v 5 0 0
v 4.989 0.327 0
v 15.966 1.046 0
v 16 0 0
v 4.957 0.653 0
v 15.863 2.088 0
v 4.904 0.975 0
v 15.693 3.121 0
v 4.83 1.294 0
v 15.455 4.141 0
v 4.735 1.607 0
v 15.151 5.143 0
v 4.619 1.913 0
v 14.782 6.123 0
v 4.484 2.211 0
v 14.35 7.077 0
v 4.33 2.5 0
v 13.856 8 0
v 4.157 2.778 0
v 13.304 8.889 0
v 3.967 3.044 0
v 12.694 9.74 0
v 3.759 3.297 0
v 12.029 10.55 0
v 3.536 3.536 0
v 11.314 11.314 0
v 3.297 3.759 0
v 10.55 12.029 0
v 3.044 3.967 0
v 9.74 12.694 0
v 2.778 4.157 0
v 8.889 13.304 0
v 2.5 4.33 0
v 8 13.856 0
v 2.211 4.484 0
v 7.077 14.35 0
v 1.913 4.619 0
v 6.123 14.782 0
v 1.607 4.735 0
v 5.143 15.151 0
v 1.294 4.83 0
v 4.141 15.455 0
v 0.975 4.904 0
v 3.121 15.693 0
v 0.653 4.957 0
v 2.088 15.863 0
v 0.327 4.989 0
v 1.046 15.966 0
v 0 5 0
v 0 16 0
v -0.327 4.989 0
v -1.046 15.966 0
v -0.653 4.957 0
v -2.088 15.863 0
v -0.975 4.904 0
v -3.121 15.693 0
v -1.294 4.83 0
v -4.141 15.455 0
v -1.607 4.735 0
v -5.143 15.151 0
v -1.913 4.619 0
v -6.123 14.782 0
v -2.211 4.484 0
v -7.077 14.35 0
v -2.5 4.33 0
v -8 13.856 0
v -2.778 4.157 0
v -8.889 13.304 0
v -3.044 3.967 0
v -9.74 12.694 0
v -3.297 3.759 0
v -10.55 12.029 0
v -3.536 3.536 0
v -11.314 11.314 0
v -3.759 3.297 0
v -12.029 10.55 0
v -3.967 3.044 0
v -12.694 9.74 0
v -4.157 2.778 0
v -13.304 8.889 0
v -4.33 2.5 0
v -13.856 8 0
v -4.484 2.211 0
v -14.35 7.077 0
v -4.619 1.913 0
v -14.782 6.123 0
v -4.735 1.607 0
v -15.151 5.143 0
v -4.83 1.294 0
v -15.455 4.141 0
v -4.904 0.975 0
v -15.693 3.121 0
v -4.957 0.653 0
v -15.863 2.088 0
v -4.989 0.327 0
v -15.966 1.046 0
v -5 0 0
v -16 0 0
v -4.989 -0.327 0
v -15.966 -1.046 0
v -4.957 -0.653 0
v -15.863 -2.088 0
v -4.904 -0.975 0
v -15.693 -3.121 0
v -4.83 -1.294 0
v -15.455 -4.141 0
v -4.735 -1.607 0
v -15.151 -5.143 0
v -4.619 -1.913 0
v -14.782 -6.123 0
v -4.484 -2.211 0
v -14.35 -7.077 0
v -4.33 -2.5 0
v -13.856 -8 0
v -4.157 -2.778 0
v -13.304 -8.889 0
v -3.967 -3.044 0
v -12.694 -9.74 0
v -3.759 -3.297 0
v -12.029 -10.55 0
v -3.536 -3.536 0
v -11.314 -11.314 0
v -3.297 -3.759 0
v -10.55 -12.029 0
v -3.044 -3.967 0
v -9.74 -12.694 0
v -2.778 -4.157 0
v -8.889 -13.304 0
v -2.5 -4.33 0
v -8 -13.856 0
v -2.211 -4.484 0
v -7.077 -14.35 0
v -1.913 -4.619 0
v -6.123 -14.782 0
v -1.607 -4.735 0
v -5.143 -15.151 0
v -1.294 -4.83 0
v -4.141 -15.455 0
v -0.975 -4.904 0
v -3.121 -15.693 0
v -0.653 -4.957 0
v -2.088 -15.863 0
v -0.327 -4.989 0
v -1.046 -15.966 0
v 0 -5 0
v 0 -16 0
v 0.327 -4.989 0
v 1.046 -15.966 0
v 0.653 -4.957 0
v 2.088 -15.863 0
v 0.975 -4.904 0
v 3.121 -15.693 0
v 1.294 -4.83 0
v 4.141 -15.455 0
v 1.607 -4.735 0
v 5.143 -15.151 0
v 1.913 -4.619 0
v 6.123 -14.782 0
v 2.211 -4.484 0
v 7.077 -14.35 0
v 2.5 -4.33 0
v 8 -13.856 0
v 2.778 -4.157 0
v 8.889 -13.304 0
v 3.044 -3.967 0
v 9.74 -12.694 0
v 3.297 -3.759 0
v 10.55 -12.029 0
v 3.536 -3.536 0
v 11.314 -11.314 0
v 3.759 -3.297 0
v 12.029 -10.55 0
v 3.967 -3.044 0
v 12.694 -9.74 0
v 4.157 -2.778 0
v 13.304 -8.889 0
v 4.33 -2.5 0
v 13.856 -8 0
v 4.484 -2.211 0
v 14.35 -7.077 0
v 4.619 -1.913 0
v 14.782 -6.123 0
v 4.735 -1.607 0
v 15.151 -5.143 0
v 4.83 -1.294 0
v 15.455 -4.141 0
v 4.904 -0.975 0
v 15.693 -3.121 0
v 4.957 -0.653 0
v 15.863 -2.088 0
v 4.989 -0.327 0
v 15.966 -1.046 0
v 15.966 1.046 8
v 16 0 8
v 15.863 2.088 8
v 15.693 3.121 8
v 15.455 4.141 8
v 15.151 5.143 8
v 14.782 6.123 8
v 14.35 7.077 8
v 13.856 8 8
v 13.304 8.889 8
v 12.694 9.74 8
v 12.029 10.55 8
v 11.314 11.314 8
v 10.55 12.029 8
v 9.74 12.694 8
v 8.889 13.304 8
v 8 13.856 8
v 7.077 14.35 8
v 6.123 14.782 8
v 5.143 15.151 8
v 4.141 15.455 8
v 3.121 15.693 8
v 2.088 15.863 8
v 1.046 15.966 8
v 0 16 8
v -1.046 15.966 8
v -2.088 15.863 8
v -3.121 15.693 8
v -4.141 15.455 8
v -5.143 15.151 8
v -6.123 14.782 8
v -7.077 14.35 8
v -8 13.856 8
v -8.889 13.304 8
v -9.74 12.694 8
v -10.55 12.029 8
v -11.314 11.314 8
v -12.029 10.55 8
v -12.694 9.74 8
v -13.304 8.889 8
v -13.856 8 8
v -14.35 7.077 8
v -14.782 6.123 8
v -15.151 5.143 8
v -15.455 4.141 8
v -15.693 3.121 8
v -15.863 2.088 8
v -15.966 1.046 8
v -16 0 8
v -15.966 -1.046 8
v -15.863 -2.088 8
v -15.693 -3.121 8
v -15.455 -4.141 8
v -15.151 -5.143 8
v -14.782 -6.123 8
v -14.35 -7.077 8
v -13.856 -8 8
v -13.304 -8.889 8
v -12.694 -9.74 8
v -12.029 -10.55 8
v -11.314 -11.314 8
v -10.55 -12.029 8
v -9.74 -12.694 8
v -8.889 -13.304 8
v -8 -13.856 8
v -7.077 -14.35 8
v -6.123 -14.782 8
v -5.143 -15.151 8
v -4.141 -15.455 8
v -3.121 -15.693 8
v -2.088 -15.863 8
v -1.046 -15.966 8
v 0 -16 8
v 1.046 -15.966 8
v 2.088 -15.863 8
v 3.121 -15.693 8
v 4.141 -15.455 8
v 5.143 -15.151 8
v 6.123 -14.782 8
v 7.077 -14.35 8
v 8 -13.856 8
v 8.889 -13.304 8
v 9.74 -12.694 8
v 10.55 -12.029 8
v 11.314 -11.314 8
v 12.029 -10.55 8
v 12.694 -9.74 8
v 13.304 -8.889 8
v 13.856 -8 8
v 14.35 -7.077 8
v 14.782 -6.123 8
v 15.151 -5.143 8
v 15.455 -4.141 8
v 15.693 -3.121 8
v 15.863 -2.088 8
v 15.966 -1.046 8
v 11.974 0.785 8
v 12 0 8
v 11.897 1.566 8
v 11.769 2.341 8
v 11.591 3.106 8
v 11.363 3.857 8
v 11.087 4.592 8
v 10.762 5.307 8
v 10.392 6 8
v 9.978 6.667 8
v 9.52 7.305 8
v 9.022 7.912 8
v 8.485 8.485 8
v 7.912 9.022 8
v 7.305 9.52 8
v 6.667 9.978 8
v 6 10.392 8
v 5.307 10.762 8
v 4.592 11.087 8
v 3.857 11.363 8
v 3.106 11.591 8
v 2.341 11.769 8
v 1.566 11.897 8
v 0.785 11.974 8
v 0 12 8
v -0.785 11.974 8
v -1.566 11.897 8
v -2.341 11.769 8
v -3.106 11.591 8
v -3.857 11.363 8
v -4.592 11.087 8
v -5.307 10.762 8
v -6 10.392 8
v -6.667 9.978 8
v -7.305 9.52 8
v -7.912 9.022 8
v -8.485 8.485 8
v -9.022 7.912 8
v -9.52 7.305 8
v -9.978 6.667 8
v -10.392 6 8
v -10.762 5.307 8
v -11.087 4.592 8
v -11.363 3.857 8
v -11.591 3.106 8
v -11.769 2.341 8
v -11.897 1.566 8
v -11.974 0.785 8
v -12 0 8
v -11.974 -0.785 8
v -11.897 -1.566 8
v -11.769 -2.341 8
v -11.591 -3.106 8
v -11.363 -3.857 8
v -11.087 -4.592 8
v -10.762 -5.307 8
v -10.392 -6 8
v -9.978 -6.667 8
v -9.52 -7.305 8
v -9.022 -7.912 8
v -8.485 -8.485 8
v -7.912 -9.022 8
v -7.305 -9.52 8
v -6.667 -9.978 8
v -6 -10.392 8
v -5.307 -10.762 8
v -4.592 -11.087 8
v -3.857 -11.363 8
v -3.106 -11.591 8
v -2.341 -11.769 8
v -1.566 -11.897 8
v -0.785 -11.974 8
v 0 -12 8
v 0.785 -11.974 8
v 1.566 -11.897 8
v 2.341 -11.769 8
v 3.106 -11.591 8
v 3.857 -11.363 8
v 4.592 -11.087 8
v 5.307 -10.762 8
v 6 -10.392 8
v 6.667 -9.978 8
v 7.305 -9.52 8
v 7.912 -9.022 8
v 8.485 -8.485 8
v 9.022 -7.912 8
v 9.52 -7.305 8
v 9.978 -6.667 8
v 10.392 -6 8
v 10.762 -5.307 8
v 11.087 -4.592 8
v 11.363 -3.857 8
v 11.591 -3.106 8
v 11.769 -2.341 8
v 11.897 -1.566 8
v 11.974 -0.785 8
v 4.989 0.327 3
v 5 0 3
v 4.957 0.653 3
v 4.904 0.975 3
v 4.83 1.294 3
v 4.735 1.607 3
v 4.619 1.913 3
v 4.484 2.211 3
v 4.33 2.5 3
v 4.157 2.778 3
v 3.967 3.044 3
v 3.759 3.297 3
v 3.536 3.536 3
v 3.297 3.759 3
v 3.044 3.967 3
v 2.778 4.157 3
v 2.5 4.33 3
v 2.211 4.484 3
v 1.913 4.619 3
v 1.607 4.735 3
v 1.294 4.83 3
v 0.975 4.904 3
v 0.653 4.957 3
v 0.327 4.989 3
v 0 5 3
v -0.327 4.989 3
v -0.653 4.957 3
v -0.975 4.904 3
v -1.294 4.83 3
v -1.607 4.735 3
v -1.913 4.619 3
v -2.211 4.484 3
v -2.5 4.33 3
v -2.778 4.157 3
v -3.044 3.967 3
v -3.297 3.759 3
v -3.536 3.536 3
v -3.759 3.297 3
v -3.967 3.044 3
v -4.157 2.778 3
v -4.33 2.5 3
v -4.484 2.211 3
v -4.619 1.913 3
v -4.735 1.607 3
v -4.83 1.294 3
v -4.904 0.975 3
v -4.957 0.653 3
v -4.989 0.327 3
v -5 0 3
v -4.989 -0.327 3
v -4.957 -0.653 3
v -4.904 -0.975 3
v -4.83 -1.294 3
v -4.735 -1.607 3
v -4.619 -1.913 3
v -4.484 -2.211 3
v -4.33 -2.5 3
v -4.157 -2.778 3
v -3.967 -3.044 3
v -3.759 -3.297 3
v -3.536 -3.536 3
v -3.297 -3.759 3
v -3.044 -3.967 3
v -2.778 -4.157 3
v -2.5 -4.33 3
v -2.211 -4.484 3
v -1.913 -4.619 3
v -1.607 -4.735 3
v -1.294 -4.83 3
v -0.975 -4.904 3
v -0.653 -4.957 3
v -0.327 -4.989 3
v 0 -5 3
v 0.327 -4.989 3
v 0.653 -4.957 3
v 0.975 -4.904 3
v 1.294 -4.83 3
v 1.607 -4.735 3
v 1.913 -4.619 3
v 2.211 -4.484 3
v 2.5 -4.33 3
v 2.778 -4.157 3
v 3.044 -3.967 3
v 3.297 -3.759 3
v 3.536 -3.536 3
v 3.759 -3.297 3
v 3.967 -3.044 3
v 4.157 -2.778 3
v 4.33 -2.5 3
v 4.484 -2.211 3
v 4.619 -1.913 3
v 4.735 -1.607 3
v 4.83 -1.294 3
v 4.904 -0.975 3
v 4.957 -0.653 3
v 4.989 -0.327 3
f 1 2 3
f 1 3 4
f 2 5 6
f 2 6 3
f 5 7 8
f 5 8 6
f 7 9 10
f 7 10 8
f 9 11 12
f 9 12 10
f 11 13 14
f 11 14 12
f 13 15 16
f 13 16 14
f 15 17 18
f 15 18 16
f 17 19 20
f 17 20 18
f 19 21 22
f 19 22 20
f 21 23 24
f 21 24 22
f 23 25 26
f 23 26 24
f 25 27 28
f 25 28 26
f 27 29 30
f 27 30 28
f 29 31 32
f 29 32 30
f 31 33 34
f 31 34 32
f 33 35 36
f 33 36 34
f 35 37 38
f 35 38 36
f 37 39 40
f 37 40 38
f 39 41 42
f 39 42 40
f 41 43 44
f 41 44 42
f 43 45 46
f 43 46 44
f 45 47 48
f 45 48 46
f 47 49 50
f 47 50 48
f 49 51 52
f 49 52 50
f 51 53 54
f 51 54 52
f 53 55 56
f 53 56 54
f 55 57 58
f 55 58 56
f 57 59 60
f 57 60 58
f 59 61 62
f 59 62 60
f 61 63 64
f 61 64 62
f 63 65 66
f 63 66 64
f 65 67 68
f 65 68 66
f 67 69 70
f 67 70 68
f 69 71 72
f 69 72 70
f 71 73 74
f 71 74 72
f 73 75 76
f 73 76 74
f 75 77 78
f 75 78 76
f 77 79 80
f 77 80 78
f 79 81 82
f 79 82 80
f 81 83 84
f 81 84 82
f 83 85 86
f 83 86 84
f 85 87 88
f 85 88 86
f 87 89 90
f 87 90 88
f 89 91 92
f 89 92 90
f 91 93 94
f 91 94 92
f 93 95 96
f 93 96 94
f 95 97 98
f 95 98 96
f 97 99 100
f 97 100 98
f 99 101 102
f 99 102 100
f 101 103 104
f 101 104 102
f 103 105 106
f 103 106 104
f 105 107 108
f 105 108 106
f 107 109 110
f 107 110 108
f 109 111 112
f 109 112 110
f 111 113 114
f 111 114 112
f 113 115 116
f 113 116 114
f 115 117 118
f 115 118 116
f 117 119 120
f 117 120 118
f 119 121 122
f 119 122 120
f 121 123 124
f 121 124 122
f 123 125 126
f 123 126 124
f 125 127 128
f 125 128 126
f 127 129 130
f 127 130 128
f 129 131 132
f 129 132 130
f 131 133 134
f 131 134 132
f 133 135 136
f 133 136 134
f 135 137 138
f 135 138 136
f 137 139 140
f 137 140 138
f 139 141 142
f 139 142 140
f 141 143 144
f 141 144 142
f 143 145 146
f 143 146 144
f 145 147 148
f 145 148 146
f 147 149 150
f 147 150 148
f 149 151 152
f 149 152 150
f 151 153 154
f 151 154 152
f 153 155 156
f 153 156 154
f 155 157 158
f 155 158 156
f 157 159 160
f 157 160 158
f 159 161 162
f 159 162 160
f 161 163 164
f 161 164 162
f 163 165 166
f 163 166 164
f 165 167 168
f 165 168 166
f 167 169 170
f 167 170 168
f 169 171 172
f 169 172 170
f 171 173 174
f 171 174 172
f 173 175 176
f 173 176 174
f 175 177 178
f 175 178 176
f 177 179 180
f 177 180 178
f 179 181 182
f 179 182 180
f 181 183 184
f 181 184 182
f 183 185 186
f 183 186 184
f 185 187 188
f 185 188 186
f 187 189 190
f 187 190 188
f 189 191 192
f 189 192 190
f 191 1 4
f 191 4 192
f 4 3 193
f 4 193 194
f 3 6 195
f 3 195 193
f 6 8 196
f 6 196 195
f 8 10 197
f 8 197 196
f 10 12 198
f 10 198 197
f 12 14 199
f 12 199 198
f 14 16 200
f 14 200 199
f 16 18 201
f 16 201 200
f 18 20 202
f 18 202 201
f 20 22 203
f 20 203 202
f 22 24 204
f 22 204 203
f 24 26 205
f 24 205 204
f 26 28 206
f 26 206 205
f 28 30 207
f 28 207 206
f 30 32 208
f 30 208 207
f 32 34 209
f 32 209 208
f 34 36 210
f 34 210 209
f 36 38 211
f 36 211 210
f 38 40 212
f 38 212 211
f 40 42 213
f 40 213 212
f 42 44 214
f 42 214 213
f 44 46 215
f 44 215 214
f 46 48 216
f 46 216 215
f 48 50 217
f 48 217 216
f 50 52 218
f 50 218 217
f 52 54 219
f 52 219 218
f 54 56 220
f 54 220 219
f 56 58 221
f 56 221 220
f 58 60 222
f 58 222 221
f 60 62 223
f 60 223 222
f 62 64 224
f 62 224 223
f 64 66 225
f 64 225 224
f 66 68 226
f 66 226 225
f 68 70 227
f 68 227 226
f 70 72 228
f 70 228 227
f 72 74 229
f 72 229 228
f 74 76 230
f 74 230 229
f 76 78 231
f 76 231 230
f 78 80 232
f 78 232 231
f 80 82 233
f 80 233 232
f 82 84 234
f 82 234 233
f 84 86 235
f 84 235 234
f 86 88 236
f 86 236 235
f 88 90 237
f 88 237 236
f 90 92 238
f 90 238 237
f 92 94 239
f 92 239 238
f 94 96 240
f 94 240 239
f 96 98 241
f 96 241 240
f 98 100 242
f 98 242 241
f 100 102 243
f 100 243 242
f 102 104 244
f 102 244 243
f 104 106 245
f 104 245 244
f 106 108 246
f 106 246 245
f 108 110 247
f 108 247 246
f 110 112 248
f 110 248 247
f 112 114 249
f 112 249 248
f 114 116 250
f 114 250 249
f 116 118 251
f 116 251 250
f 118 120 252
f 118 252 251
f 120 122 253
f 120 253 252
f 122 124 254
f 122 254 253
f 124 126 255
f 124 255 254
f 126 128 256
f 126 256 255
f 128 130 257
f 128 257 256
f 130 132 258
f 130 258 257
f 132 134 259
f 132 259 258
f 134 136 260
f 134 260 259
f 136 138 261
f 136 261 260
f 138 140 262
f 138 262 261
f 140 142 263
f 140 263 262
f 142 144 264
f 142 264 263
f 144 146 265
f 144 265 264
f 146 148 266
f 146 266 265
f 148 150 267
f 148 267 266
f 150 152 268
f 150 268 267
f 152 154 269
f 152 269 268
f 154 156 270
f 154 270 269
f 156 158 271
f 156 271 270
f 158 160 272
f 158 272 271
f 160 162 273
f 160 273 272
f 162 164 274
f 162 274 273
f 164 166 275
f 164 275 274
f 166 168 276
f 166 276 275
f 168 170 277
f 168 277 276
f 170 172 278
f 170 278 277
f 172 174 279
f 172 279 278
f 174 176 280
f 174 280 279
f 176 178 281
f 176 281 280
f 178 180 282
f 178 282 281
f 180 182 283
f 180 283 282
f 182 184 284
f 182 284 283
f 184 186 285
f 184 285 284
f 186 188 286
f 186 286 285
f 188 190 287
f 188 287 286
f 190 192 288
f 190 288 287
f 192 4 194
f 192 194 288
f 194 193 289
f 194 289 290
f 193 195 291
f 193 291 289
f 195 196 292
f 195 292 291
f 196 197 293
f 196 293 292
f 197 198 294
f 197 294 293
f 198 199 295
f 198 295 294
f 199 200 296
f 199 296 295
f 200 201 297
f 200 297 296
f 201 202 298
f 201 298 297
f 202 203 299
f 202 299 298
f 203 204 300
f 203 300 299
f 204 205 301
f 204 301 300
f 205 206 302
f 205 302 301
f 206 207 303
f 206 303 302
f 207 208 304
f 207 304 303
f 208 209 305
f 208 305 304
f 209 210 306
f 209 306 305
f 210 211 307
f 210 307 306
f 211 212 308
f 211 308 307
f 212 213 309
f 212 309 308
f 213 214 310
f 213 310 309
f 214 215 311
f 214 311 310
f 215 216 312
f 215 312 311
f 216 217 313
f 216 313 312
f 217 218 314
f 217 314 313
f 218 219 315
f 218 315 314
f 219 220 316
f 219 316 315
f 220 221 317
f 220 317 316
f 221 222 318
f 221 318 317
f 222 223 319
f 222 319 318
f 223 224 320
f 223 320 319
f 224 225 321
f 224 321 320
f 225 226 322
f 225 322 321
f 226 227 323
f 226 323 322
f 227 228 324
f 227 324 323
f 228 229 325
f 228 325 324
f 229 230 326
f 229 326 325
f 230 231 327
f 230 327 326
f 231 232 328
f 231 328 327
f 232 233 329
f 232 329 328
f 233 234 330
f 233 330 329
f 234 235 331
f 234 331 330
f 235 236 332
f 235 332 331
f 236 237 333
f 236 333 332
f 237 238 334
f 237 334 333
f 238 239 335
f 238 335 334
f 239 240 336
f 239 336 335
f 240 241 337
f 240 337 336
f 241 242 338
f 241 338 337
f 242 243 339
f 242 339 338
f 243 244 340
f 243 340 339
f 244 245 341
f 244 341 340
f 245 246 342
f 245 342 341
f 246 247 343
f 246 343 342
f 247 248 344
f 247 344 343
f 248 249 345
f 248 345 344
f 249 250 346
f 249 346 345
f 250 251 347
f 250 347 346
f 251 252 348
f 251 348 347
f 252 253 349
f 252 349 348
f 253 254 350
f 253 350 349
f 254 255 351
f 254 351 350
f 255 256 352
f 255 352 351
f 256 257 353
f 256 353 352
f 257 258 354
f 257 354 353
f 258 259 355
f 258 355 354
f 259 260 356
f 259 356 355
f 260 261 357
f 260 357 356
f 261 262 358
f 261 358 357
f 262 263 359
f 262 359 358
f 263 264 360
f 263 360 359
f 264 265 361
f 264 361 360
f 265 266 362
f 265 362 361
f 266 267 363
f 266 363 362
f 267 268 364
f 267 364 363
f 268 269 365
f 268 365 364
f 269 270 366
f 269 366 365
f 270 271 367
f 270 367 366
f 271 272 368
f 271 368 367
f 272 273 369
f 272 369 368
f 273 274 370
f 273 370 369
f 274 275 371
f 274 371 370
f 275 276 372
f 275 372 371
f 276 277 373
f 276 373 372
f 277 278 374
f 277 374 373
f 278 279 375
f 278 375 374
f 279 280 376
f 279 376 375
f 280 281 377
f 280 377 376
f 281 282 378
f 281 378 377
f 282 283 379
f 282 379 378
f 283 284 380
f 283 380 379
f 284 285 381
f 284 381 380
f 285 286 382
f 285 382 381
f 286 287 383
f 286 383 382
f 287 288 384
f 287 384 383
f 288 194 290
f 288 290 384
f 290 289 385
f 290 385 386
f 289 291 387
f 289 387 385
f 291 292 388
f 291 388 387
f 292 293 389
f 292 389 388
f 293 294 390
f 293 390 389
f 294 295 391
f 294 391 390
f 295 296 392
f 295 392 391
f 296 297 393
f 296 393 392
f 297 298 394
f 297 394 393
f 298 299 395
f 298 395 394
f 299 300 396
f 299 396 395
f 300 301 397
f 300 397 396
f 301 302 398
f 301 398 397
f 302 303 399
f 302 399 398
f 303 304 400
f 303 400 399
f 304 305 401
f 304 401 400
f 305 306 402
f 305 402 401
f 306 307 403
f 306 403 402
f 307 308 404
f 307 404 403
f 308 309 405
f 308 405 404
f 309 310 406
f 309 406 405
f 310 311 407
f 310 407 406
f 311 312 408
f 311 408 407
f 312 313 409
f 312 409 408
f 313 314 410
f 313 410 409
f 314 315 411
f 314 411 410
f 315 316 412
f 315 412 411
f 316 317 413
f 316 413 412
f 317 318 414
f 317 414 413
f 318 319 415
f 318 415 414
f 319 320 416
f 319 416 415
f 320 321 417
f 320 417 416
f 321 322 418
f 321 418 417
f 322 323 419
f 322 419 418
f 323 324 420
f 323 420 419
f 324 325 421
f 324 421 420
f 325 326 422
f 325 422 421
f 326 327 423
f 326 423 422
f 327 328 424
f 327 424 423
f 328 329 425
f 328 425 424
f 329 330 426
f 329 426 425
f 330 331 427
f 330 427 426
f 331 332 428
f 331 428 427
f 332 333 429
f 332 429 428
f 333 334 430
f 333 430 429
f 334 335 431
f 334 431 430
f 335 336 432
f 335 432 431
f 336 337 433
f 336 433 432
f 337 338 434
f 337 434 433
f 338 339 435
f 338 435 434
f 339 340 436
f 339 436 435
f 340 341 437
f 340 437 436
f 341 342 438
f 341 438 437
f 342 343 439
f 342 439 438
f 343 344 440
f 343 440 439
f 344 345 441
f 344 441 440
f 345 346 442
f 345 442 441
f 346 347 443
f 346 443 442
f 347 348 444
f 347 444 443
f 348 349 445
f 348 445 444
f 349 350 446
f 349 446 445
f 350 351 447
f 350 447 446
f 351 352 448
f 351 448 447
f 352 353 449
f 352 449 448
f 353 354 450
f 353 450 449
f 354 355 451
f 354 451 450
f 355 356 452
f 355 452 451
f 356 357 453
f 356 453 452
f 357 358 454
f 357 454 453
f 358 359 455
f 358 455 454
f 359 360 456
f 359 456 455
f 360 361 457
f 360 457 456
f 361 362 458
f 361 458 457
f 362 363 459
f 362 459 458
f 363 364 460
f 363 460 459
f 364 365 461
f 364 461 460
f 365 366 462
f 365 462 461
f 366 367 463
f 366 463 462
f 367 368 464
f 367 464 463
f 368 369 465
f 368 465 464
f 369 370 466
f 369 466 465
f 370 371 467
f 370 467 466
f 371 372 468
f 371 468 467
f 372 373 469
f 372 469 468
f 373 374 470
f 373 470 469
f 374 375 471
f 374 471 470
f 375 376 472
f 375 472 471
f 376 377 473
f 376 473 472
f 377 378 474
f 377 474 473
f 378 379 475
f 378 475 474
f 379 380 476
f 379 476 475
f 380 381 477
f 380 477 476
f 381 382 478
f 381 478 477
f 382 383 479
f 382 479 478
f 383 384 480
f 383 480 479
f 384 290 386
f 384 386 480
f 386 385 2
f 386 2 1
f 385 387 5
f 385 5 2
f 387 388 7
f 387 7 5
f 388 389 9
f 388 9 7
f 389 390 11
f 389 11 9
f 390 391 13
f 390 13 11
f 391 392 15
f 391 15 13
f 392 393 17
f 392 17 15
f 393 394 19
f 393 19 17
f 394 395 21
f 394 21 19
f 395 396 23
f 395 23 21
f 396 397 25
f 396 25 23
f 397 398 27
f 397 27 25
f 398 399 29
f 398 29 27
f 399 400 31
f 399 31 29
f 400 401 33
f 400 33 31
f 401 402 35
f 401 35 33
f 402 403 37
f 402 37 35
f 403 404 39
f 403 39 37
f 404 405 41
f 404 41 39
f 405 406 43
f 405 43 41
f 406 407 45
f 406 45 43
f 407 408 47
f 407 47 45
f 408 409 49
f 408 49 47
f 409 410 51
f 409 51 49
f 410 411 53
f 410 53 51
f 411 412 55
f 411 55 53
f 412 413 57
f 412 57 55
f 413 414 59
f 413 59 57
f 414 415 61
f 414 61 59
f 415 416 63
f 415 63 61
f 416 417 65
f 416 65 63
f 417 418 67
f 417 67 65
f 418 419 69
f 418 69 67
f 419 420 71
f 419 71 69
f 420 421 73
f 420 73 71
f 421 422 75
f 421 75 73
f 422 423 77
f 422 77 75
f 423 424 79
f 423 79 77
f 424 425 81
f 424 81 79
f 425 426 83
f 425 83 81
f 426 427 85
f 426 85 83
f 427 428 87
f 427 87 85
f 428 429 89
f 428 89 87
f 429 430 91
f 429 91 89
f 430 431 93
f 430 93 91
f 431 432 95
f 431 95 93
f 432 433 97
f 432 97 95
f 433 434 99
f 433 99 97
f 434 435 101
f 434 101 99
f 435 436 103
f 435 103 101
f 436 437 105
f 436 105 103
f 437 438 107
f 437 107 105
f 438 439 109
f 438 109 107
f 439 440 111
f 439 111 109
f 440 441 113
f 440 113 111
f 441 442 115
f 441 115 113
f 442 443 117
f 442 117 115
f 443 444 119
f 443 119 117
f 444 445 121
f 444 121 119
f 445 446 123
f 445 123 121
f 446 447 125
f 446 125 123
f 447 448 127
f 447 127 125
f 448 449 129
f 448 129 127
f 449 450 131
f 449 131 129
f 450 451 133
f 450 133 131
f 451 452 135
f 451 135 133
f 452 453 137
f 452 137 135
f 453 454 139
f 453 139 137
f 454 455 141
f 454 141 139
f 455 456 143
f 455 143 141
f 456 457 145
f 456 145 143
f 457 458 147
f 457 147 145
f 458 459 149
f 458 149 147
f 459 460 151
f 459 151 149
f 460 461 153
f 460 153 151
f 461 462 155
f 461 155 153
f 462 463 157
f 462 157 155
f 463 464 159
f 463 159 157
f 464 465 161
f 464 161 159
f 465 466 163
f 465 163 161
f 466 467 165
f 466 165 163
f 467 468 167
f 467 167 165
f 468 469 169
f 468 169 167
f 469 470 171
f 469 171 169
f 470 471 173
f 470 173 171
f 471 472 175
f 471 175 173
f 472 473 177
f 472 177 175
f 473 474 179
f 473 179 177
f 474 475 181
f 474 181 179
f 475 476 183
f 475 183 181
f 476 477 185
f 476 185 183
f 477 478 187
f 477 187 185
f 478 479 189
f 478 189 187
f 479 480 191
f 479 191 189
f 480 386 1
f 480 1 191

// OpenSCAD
// Original MechIntel educational model. CC0-1.0. Units: mm.
// Not a standardized or load-rated component.
$fn=96;
// Section points: [radius, height], mm. Edit to change the profile.
section=[[5, 0], [16, 0], [16, 8], [12, 8], [5, 3]];
rotate_extrude($fn=96) polygon(points=section);
